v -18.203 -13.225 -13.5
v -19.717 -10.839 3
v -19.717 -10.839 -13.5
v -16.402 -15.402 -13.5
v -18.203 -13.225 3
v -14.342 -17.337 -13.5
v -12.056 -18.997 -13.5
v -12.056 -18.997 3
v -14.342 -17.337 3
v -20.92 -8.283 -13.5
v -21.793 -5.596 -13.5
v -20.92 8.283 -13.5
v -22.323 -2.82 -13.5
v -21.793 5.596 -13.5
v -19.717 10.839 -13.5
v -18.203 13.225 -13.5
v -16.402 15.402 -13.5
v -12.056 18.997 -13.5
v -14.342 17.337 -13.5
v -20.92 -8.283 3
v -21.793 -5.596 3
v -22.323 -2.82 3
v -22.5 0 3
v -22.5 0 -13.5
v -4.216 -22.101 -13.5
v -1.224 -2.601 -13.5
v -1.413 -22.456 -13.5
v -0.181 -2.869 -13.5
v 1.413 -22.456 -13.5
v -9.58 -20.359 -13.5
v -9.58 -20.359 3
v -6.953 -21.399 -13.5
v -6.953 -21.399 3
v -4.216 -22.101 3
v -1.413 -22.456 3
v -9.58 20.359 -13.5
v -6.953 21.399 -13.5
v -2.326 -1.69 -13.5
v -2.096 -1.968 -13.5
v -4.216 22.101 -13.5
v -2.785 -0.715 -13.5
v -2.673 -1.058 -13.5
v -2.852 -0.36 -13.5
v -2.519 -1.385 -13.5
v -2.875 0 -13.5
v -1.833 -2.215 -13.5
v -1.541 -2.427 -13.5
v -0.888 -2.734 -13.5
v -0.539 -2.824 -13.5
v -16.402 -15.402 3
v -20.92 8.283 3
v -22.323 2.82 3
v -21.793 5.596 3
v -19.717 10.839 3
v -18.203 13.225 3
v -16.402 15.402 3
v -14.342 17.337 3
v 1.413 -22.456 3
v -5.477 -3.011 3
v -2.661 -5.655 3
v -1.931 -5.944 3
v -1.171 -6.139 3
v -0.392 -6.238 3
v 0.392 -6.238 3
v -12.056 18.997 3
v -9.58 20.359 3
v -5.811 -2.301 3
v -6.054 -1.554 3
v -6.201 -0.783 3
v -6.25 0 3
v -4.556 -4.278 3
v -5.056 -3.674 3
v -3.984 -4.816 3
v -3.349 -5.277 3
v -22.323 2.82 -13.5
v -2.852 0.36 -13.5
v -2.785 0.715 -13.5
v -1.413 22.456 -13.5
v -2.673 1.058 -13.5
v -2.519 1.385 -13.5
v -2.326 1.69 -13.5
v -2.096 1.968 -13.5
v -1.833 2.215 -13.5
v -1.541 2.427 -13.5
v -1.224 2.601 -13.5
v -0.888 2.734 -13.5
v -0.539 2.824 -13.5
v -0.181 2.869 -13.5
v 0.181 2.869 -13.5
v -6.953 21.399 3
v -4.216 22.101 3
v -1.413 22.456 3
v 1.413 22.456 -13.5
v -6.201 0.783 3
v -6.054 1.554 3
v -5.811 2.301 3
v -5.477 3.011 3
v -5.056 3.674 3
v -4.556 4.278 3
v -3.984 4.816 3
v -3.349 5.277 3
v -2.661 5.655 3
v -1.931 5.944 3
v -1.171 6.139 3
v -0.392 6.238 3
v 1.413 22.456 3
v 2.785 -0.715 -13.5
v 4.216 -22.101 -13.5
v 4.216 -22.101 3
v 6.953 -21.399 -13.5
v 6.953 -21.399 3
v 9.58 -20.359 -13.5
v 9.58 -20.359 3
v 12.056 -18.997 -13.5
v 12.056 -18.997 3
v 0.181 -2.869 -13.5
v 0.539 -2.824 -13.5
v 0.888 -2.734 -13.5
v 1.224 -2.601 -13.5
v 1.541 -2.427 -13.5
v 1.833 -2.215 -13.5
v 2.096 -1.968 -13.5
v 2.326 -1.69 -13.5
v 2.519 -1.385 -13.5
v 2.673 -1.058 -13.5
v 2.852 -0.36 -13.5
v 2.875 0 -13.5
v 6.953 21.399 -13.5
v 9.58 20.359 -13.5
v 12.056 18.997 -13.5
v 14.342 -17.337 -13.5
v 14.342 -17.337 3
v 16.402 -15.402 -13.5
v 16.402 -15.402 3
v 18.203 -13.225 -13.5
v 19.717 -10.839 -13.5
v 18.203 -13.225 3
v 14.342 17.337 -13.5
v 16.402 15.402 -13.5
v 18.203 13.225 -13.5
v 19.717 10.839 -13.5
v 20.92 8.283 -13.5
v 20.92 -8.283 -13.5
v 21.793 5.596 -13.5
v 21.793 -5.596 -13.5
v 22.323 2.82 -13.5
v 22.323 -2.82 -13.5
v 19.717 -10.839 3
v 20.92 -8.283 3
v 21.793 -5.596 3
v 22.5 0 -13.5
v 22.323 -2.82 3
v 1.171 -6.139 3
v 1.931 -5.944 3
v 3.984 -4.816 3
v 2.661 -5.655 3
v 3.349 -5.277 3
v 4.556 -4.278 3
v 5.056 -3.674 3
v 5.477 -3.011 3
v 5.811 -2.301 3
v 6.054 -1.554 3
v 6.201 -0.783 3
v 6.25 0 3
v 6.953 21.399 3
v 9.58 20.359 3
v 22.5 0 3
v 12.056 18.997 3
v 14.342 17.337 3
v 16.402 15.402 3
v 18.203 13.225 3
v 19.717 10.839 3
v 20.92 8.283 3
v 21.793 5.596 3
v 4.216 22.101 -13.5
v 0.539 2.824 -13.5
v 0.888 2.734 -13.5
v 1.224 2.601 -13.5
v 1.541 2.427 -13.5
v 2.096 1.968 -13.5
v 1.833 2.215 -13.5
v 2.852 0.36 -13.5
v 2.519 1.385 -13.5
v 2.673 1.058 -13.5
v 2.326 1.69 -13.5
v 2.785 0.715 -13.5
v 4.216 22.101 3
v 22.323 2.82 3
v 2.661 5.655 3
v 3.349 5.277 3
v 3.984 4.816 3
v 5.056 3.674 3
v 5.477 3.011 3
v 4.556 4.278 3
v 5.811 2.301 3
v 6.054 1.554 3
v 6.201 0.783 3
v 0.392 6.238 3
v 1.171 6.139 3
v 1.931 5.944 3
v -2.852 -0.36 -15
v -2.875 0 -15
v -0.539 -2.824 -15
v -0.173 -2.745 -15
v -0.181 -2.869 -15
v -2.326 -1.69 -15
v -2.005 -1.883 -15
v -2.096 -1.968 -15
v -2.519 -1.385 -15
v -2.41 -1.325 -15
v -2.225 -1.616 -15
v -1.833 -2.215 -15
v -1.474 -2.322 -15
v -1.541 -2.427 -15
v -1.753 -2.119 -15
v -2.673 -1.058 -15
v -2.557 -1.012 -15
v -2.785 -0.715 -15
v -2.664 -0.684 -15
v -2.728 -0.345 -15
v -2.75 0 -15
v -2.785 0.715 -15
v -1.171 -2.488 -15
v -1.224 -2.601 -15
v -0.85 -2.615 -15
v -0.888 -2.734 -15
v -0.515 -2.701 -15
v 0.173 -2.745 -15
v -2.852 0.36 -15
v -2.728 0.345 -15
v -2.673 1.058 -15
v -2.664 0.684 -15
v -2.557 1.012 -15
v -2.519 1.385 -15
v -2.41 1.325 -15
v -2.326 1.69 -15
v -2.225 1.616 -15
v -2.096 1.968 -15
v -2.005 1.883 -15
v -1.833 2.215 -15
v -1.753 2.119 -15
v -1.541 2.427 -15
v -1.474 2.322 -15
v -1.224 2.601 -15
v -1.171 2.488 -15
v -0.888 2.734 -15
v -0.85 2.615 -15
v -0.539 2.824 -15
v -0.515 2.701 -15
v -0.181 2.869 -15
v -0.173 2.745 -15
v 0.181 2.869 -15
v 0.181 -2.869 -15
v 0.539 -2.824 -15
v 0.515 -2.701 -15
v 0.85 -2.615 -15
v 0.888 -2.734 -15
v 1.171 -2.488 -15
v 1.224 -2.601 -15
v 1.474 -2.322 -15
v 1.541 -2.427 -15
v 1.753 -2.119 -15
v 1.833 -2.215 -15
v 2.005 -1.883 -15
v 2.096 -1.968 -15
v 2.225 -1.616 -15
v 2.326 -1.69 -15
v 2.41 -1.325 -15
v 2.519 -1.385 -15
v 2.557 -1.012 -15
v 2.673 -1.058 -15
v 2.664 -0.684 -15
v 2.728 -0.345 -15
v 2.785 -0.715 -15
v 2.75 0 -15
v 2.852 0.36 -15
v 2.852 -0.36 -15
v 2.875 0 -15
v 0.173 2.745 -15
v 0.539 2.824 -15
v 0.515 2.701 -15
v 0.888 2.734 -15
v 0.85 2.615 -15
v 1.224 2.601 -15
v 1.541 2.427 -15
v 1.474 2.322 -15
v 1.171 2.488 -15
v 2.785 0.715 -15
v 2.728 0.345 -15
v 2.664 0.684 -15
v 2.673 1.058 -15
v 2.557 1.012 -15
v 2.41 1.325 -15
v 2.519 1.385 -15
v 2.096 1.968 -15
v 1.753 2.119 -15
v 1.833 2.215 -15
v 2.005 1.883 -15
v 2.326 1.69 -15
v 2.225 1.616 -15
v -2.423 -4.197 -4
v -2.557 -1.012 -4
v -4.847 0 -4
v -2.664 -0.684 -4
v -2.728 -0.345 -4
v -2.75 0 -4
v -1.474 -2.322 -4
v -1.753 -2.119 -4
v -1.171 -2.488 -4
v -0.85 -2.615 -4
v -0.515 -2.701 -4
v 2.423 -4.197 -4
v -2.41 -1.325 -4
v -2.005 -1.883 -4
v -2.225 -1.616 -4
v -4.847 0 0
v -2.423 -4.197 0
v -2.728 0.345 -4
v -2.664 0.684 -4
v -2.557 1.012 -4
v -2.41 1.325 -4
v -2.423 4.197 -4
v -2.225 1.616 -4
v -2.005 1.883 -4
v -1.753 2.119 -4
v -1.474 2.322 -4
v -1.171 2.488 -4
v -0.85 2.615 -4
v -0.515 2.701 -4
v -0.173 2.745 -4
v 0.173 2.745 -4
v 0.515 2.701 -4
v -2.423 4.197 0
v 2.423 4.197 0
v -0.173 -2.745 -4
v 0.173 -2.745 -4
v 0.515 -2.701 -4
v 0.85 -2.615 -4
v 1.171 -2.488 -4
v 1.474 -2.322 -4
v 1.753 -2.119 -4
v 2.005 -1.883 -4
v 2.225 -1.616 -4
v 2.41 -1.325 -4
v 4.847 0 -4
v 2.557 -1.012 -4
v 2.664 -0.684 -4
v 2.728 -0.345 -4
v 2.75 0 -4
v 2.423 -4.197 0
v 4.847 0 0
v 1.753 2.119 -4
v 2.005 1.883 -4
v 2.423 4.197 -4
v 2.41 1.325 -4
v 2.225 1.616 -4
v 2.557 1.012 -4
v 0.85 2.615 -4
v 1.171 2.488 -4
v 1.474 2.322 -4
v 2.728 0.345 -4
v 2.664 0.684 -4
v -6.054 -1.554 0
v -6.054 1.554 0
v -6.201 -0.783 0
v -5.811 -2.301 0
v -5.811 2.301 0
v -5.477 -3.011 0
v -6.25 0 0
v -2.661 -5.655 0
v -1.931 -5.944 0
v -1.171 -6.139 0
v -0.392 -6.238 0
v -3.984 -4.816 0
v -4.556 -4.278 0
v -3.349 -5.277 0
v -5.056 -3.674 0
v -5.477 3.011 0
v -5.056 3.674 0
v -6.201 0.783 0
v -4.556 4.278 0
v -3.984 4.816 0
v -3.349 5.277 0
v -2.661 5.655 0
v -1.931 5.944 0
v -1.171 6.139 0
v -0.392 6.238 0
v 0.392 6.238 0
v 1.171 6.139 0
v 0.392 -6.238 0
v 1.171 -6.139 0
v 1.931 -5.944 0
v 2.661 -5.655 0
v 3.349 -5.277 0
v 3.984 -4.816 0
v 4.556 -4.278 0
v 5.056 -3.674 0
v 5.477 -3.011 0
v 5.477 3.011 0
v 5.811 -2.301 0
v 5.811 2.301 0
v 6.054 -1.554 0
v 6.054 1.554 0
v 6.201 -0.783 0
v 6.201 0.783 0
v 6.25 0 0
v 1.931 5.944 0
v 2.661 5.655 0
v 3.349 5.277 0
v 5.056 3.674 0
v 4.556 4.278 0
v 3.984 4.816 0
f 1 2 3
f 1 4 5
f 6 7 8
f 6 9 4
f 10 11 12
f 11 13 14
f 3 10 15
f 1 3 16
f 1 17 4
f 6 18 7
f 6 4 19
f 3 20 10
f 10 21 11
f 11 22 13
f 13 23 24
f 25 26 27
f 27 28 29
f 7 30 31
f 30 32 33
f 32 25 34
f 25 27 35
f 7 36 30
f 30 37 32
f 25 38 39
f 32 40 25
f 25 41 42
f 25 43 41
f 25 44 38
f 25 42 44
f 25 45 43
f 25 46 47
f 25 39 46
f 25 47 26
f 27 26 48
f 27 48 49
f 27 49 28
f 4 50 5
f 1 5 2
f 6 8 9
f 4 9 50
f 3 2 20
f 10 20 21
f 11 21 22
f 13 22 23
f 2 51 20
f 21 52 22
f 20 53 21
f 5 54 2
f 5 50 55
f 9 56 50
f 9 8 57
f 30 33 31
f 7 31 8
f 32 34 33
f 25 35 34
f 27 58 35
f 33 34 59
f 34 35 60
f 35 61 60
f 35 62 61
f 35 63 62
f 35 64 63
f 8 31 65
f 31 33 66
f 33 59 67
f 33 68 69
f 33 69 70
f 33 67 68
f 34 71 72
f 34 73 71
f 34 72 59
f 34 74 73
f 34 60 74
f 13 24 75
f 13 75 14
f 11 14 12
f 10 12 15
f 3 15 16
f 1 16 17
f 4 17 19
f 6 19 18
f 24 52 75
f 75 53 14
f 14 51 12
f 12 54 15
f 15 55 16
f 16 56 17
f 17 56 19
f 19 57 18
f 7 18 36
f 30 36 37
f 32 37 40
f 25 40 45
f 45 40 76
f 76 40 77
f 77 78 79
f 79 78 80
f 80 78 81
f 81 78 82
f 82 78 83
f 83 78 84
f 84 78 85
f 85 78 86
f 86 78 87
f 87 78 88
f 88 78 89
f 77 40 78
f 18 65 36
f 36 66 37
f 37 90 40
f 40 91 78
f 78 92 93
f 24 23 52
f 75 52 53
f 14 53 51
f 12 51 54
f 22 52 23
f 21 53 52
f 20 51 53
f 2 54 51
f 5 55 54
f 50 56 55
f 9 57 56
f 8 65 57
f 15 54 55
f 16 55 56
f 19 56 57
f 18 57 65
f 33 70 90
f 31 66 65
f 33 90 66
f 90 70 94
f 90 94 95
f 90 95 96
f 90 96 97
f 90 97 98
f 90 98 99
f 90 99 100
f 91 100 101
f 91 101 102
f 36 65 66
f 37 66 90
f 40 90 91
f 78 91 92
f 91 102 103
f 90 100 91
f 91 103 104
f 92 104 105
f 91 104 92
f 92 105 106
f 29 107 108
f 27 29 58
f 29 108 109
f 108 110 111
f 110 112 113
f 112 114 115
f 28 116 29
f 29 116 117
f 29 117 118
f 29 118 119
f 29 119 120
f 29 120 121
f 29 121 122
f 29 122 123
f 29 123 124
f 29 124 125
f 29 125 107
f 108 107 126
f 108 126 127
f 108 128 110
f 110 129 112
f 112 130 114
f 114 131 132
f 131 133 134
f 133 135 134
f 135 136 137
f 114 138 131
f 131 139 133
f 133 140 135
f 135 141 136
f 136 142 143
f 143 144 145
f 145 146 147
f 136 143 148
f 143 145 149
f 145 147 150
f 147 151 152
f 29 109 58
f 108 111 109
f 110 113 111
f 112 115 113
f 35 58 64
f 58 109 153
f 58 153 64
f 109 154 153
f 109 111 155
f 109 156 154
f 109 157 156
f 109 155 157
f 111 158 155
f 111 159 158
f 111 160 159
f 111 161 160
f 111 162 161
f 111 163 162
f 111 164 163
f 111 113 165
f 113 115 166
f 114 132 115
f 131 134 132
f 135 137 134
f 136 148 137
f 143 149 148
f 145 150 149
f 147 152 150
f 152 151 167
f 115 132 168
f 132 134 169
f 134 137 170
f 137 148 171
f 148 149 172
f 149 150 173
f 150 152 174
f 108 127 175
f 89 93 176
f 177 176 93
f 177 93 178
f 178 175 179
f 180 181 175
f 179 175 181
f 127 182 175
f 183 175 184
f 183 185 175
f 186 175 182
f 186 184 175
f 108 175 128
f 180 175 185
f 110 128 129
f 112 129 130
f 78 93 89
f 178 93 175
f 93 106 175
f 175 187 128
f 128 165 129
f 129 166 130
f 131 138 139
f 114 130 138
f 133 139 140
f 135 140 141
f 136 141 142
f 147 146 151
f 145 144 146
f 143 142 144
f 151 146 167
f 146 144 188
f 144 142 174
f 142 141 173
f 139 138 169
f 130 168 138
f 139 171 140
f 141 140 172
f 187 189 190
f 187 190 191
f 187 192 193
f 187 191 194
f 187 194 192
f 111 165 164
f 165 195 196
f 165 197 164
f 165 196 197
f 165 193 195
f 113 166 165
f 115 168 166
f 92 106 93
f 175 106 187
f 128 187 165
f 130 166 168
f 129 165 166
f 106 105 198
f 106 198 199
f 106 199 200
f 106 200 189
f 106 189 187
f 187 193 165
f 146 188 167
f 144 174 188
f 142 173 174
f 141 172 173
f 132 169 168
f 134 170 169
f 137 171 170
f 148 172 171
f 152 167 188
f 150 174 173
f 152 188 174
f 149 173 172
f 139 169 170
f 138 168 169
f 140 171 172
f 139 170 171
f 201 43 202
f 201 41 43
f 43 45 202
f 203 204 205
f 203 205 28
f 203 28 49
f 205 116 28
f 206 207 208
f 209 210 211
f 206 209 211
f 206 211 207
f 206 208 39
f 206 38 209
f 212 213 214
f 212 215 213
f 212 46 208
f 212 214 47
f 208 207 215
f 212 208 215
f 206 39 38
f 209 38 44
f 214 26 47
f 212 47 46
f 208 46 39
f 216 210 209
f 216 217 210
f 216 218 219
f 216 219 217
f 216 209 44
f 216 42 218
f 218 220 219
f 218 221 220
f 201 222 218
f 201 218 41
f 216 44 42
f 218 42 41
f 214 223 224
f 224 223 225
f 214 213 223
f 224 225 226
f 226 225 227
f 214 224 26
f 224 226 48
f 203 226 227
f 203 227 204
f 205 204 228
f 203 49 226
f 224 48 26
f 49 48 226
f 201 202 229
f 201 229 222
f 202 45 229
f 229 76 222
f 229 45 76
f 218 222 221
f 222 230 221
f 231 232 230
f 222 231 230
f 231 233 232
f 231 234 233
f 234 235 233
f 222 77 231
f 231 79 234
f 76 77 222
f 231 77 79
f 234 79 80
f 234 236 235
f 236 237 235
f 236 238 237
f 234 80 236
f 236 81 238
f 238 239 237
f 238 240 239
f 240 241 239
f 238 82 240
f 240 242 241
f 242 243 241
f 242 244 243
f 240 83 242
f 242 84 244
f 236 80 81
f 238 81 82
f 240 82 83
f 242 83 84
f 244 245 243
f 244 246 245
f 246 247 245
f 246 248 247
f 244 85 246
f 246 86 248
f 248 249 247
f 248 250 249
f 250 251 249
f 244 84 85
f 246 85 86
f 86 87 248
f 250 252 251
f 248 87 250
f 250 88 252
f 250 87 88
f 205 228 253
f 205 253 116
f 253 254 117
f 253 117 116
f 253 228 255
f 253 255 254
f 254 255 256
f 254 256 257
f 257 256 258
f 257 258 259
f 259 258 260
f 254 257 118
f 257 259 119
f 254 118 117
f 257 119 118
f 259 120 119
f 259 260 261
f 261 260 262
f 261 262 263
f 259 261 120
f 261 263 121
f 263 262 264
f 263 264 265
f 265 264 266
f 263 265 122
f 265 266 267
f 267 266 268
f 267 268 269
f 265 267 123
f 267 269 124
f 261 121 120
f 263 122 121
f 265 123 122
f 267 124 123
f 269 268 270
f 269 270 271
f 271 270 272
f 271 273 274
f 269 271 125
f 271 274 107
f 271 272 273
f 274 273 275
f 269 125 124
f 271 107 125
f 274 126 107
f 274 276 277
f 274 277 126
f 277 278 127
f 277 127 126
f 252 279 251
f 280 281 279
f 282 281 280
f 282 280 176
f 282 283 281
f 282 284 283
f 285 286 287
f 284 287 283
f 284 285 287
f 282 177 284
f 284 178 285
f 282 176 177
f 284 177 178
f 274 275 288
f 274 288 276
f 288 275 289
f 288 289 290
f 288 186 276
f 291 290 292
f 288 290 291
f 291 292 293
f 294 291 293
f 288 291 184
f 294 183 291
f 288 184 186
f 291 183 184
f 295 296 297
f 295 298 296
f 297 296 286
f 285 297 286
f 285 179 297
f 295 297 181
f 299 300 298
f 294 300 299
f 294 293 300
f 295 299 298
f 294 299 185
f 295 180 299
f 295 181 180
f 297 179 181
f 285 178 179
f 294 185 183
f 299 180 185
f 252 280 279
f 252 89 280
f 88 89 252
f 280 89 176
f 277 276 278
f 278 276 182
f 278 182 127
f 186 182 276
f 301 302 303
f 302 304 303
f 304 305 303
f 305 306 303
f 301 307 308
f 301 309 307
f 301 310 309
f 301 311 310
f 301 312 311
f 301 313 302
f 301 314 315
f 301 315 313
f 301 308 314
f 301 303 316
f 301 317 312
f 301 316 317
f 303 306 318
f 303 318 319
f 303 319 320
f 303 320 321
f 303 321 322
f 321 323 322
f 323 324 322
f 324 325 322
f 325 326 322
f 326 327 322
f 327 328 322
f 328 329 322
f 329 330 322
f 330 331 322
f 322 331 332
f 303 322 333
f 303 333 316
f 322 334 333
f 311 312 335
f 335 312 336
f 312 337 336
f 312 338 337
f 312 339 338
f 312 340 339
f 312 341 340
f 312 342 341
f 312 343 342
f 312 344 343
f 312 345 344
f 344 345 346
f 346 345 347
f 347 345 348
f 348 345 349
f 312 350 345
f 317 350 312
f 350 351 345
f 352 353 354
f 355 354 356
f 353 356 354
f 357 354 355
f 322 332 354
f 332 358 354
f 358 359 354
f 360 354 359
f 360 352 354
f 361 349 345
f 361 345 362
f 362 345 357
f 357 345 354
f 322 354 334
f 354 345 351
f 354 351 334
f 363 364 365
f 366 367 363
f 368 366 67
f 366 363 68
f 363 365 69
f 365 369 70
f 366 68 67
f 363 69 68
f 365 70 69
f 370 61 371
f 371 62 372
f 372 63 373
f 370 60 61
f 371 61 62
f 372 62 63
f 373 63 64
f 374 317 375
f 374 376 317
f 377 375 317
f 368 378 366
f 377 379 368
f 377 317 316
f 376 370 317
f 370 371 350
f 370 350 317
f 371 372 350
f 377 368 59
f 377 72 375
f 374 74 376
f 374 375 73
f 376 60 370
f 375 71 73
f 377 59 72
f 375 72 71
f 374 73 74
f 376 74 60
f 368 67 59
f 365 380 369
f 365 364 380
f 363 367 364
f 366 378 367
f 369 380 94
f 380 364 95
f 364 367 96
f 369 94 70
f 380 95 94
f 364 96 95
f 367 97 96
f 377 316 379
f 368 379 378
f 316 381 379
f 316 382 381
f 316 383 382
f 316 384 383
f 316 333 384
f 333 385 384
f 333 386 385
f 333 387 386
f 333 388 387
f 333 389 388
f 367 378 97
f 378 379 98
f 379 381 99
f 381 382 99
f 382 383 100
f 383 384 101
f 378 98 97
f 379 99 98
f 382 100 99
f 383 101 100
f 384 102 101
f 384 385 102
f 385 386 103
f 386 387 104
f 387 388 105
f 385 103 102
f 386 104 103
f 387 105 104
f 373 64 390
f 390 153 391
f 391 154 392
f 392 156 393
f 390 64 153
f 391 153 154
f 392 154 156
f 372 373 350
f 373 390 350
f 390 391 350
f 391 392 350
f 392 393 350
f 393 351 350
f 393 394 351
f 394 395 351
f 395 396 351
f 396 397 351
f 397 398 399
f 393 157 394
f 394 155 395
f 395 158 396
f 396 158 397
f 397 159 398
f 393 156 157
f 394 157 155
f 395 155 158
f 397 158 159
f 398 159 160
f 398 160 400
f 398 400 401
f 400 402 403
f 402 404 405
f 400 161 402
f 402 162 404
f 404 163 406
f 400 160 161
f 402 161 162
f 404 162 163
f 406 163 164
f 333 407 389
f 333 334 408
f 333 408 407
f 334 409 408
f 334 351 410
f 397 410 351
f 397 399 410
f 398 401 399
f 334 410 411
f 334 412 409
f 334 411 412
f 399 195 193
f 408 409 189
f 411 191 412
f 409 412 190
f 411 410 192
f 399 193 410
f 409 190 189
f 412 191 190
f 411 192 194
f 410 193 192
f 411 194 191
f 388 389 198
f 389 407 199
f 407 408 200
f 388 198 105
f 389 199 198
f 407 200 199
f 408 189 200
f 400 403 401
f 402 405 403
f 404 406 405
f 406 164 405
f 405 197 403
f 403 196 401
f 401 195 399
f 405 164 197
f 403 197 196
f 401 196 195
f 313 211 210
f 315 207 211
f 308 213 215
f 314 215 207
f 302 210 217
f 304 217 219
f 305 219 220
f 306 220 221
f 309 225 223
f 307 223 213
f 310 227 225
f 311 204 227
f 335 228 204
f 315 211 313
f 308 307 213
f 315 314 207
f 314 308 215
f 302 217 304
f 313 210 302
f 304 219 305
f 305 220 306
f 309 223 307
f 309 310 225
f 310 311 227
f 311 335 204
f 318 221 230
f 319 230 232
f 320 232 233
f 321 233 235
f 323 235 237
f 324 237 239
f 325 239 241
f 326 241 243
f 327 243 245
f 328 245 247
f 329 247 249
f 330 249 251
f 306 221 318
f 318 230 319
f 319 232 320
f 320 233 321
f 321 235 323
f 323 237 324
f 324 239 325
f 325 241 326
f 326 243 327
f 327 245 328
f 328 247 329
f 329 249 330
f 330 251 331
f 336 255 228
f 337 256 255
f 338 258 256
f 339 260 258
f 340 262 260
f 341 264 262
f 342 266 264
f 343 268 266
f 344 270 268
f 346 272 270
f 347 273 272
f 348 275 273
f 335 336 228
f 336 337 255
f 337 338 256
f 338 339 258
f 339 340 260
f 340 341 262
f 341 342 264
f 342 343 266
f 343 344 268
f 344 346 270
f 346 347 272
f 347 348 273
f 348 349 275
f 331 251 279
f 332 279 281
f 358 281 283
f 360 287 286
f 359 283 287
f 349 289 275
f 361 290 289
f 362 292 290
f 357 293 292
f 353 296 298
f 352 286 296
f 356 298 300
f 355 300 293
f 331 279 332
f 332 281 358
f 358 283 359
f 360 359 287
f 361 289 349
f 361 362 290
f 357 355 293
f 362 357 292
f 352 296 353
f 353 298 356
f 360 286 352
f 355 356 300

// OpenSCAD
$fn = 50;

difference() {
	union() {
		translate(v = [0, 0, -13.5]) {
			cylinder(h = 16.5, r = 22.5);
		}
		#translate(v = [0, 0, -15.0]) {
			cylinder(h = 15, r = 2.875);
		}
	}
	union() {
		translate(v = [0, 0, 0]) {
			rotate(a = [0, 0, 0]) {
				difference() {
					union() {
						translate(v = [0, 0, -4]) {
							linear_extrude(height = 4) {
								polygon(points = [[4.8468, 0.0], [2.4234000000000004, 4.197451927062417], [-2.423399999999999, 4.197451927062417], [-4.8468, 5.935618106107392e-16], [-2.423400000000002, -4.197451927062416], [2.423399999999997, -4.197451927062419]]);
							}
						}
					}
					union();
				}
			}
		}
		#cylinder(h = 3, r = 6.25);
		#translate(v = [0, 0, -100.0]) {
			cylinder(h = 200, r = 2.75);
		}
	}
}
